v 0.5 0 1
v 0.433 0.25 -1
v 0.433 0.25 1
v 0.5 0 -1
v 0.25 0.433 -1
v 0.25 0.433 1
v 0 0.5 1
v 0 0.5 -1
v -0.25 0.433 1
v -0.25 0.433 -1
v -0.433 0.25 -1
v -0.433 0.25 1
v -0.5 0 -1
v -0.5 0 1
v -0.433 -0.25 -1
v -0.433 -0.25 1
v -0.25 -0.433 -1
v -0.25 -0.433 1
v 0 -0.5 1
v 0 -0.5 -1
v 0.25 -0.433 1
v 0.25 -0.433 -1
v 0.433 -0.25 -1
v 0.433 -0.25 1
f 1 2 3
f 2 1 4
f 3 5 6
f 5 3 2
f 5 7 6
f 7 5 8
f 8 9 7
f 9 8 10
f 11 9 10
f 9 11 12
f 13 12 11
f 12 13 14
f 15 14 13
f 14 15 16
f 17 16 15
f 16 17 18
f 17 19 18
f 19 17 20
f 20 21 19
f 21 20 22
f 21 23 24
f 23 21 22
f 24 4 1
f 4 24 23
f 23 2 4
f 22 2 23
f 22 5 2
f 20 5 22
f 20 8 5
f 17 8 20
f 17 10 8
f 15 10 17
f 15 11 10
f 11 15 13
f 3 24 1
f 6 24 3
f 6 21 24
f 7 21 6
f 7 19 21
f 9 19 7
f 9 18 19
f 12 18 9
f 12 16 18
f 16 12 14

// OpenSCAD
translate([0.0,0.0,0.0]){
	cylinder($fn = 12, h = 2.0, r1 = 0.5, r2 = 0.5, center = true);
}
